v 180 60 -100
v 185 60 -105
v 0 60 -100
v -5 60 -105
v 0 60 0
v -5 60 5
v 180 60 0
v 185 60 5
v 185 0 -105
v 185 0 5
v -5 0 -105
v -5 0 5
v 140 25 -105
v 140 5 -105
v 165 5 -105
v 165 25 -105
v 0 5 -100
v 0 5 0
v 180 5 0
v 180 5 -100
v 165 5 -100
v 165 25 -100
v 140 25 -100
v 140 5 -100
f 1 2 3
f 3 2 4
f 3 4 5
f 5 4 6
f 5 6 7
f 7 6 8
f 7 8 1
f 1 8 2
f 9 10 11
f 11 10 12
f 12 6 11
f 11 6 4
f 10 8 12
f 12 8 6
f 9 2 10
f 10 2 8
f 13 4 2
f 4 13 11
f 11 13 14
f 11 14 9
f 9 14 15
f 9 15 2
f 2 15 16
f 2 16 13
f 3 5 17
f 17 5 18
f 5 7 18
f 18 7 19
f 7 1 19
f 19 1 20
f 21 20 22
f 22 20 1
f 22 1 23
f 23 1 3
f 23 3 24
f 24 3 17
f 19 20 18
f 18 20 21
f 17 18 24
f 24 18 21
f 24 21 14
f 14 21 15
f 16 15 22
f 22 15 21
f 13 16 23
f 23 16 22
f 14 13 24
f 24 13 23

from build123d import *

# Parameters (mm, degrees)
SKETCH1_W           = 190
SKETCH1_H           = 110
SKETCH1_W_2         = 180
SKETCH1_H_2         = 100
BOSS_EXTRUDE1_DEPTH = 60
SKETCH2_W           = 110
SKETCH2_H           = 5
BOSS_EXTRUDE2_DEPTH = 190
SKETCH3_W           = 25
SKETCH3_H           = 20
CUT_EXTRUDE1_DEPTH  = 60


with BuildPart() as part:
    # Sketch1 → Boss-Extrude1 (new body)
    with BuildSketch(Plane(origin=(0, 0, 0), x_dir=(1, 0, 0), z_dir=(0, 1, 0))):
        with Locations((90, 50)):
            Rectangle(SKETCH1_W, SKETCH1_H)
        with Locations((90, 50)):
            Rectangle(SKETCH1_W_2, SKETCH1_H_2, mode=Mode.SUBTRACT)
    extrude(amount=BOSS_EXTRUDE1_DEPTH)

    # Sketch2 → Boss-Extrude2 (add)
    with BuildSketch(Plane(origin=(185, 0, 0), x_dir=(0, 0, -1), z_dir=(1, 0, 0))):
        with Locations((50, 2.5)):
            Rectangle(SKETCH2_W, SKETCH2_H)
    extrude(amount=-BOSS_EXTRUDE2_DEPTH)

    # Sketch3 → Cut-Extrude1 (cut)
    with BuildSketch(Plane(origin=(0, 0, -105), x_dir=(-1, 0, 0), z_dir=(0, 0, -1))):
        with Locations((-152.5, 15)):
            Rectangle(SKETCH3_W, SKETCH3_H)
    extrude(amount=-CUT_EXTRUDE1_DEPTH, mode=Mode.SUBTRACT)


solid = part.part
